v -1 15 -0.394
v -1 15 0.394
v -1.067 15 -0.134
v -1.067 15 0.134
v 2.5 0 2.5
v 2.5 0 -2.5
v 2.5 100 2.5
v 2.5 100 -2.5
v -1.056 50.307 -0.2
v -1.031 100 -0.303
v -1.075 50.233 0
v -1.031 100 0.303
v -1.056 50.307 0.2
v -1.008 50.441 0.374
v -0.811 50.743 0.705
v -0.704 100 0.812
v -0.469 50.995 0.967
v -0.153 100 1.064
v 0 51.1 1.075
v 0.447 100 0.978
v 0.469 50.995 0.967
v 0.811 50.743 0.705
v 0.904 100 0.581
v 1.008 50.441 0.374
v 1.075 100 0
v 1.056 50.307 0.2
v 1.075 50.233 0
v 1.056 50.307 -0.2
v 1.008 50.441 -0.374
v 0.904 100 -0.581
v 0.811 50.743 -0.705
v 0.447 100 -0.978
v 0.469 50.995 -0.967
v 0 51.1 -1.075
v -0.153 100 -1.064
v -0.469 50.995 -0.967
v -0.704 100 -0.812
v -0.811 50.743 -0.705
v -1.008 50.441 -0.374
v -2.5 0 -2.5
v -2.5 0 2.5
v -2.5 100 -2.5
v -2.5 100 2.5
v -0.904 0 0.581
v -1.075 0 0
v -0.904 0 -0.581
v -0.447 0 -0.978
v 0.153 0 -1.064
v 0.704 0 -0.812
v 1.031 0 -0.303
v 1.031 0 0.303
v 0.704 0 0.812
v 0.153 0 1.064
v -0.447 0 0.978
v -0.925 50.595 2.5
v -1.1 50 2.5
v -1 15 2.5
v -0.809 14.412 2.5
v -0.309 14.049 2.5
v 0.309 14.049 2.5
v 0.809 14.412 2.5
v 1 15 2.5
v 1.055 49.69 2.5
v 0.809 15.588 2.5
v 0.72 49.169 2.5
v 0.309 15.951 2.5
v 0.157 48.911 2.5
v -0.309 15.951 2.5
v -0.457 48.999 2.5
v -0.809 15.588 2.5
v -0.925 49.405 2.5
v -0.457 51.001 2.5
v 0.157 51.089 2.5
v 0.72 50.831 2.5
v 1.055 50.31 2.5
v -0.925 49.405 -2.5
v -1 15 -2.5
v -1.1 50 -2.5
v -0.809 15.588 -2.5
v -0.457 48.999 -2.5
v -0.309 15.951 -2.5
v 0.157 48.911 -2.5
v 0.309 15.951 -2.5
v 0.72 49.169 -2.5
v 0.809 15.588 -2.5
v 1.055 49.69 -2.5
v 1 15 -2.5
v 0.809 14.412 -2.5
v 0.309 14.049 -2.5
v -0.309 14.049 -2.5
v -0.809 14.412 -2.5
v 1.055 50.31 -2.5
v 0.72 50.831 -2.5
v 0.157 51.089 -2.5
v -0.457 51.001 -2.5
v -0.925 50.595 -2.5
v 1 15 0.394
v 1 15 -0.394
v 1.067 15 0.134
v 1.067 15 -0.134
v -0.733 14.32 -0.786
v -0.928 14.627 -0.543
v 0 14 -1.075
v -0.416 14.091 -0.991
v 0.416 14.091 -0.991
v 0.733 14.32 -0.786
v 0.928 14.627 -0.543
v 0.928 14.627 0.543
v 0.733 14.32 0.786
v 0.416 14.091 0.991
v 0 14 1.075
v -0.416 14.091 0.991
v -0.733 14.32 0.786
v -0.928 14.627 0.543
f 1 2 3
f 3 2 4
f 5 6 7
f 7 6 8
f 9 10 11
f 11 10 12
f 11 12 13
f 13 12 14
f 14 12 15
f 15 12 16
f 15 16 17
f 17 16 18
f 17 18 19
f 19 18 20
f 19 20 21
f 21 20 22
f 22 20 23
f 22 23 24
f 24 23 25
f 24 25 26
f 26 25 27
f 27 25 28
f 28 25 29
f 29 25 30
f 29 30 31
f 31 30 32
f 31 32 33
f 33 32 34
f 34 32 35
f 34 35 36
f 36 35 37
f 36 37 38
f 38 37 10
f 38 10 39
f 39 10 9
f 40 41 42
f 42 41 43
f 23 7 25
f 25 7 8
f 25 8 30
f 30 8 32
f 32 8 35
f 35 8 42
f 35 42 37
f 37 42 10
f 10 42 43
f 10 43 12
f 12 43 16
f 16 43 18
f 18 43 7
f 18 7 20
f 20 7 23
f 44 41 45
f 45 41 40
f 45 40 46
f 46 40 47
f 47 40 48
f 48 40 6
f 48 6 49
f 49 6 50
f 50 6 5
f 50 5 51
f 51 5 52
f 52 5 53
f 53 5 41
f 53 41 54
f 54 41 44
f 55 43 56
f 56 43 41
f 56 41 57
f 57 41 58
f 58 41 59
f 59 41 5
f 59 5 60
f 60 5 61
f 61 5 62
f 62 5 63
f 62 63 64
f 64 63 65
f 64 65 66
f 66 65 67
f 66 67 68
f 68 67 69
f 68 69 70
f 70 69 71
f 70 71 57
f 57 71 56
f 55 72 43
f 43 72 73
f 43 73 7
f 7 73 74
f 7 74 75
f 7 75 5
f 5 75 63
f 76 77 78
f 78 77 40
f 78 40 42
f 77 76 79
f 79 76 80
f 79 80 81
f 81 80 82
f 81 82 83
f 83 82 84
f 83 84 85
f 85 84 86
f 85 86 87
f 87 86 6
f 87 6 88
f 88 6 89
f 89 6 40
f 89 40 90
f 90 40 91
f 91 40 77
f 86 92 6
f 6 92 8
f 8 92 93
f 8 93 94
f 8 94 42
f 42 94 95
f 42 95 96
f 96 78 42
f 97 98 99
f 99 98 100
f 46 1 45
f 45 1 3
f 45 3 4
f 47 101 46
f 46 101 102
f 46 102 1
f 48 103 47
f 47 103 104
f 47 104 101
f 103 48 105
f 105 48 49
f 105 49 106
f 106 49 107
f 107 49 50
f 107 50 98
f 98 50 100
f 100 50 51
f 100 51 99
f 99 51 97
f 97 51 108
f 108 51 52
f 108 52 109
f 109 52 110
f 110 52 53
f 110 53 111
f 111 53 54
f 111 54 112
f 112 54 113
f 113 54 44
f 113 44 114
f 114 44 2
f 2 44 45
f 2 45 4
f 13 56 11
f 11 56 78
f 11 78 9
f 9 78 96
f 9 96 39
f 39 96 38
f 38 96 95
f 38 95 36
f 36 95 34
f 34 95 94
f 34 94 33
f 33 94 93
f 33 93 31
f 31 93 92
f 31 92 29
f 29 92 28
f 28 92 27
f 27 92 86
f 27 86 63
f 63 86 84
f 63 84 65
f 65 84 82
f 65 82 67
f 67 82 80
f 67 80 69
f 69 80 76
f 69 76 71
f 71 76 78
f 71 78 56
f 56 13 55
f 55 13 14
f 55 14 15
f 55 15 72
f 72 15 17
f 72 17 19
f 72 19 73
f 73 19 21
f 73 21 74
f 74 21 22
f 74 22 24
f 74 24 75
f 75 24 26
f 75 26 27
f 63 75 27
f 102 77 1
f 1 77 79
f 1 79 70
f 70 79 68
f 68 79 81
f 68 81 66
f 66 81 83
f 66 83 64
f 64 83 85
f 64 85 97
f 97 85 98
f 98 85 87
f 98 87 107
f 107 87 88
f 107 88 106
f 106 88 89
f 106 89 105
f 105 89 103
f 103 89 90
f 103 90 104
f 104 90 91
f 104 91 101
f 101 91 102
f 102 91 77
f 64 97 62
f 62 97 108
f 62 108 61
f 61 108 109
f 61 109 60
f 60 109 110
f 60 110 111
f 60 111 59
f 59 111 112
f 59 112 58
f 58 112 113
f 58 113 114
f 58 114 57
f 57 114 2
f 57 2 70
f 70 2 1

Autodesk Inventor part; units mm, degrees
ref_plane "YZ Plane" through (0, 0, 0) normal (1, 0, 0) x (0, 1, 0)
ref_plane "XZ Plane" through (0, 0, 0) normal (0, 1, 0) x (-1, 0, 0)
ref_plane "XY Plane" through (0, 0, 0) normal (0, 0, 1) x (1, 0, 0)
sketch "スケッチ1" plane through (0, 0, 0) normal (0, 1, 0) x (-1, 0, 0)
  circle A0 centre (0, 0) radius 1.075
  line L0 (-2.5, -2.5) -> (2.5, -2.5)
  line L1 (2.5, -2.5) -> (2.5, 2.5)
  line L2 (2.5, 2.5) -> (-2.5, 2.5)
  line L3 (-2.5, 2.5) -> (-2.5, -2.5)
  line L4 (-2.5, -2.5) -> (2.5, 2.5) construction
  line L5 (2.5, -2.5) -> (-2.5, 2.5) construction
  dimension "d0" = 2.15
  dimension "d1" = 5
  dimension "d2" = 5
extrude "押し出し1" add sketch "スケッチ1" along normal blind 100 contours A0 | L3 L2 L1 L0
extrude "押し出し2" cut sketch "スケッチ1" along normal blind 15 contours A0
sketch "スケッチ2" plane through (0, 100, 0) normal (0, 1, 0) x (1, 0, 0)
  point P0 (0, 0)
hole "穴1" at (0, 100, 0) direction (0, -1, 0) diameter 2.15 depth 50 tip angle 118
sketch "スケッチ3" plane through (2.5, 0, -2.5) normal (0, 0, -1) x (-1, 0, 0)
  line L0 (5, 0) -> (0, 0) projected
  line L1 (5, 0) -> (5, 100) projected
  line L2 (0, 0) -> (5, 0)
  line L3 (5, 0) -> (5, 15)
  line L4 (5, 15) -> (0, 15)
  line L5 (0, 15) -> (0, 0)
  circle A0 centre (2.5, 15) radius 1
  line L6 (0, 100) -> (5, 100) projected
  line L7 (0, 100) -> (5, 100)
  line L8 (5, 100) -> (5, 50)
  line L9 (5, 50) -> (0, 50)
  line L10 (0, 50) -> (0, 100)
  circle A1 centre (2.5, 50) radius 1.1
  point P0 (2.5, 0)
  dimension "d14" = 15
  dimension "d15" = 2
  dimension "d16" = 50
  dimension "d17" = 2.2
extrude "押し出し3" cut sketch "スケッチ3" against normal blind 5 contours A0 L4 | L4 A0 | A1 L9 | L9 A1
properties part number "g_a_exp"
